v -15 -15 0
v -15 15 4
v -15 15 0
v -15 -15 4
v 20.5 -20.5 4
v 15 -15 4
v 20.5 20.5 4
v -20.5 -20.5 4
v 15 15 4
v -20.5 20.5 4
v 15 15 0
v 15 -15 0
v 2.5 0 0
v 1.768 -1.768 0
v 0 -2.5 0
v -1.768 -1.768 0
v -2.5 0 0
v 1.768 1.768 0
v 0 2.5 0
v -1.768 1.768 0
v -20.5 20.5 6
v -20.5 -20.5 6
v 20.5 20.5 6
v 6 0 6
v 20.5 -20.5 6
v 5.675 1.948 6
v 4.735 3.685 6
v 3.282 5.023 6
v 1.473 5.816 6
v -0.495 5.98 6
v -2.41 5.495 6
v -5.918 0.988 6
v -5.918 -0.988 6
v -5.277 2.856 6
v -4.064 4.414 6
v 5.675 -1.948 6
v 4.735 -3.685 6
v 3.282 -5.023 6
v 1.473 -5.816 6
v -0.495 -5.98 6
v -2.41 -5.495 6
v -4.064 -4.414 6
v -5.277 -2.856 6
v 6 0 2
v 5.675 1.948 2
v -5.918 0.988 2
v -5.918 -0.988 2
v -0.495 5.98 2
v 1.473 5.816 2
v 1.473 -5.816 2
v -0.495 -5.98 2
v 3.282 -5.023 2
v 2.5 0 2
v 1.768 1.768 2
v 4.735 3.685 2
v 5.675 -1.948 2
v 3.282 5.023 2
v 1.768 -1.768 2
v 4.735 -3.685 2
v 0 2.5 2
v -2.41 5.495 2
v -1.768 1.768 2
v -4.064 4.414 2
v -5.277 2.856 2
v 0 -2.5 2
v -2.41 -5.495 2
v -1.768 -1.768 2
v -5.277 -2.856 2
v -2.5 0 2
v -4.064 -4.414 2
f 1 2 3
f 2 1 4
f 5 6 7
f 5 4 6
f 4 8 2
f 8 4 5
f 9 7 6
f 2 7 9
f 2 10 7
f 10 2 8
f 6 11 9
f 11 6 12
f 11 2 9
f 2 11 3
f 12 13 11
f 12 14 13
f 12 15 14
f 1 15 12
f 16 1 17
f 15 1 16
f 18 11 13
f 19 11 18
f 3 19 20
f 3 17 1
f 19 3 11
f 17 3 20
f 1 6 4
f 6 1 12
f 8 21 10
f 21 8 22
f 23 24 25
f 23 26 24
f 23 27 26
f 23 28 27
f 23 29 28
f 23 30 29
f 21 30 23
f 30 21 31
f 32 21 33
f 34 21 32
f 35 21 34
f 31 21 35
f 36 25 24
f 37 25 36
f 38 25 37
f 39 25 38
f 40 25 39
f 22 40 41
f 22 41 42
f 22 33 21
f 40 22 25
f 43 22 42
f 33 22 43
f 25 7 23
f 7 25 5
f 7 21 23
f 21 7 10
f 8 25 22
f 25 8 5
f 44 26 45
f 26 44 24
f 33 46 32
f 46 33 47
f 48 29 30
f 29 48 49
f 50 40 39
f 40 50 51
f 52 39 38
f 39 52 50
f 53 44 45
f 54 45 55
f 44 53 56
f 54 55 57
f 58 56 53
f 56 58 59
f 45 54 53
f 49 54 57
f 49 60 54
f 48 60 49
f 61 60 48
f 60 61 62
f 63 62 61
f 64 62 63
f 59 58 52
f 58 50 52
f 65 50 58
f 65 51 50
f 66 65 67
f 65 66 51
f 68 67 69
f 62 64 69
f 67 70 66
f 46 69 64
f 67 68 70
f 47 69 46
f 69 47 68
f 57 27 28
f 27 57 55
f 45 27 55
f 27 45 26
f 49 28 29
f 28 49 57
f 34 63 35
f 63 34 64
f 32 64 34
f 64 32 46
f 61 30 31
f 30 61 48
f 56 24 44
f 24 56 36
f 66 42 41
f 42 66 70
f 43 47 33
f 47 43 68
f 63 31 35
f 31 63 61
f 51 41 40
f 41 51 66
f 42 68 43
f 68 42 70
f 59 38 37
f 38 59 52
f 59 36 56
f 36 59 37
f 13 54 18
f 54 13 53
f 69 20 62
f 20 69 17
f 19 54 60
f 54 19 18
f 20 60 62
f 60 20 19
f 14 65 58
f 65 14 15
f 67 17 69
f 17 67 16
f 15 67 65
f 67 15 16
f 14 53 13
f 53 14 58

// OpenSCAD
difference(){
    union(){        
        translate([-15,-15,0])cube([30,30,4]);
        translate([-41/2,-41/2,4])cube([41,41,2]);
    }
    translate([0,0,2])cylinder(r=12/2,h=10);
    translate([0,0,-1])cylinder(r=5/2,h=10);
}
